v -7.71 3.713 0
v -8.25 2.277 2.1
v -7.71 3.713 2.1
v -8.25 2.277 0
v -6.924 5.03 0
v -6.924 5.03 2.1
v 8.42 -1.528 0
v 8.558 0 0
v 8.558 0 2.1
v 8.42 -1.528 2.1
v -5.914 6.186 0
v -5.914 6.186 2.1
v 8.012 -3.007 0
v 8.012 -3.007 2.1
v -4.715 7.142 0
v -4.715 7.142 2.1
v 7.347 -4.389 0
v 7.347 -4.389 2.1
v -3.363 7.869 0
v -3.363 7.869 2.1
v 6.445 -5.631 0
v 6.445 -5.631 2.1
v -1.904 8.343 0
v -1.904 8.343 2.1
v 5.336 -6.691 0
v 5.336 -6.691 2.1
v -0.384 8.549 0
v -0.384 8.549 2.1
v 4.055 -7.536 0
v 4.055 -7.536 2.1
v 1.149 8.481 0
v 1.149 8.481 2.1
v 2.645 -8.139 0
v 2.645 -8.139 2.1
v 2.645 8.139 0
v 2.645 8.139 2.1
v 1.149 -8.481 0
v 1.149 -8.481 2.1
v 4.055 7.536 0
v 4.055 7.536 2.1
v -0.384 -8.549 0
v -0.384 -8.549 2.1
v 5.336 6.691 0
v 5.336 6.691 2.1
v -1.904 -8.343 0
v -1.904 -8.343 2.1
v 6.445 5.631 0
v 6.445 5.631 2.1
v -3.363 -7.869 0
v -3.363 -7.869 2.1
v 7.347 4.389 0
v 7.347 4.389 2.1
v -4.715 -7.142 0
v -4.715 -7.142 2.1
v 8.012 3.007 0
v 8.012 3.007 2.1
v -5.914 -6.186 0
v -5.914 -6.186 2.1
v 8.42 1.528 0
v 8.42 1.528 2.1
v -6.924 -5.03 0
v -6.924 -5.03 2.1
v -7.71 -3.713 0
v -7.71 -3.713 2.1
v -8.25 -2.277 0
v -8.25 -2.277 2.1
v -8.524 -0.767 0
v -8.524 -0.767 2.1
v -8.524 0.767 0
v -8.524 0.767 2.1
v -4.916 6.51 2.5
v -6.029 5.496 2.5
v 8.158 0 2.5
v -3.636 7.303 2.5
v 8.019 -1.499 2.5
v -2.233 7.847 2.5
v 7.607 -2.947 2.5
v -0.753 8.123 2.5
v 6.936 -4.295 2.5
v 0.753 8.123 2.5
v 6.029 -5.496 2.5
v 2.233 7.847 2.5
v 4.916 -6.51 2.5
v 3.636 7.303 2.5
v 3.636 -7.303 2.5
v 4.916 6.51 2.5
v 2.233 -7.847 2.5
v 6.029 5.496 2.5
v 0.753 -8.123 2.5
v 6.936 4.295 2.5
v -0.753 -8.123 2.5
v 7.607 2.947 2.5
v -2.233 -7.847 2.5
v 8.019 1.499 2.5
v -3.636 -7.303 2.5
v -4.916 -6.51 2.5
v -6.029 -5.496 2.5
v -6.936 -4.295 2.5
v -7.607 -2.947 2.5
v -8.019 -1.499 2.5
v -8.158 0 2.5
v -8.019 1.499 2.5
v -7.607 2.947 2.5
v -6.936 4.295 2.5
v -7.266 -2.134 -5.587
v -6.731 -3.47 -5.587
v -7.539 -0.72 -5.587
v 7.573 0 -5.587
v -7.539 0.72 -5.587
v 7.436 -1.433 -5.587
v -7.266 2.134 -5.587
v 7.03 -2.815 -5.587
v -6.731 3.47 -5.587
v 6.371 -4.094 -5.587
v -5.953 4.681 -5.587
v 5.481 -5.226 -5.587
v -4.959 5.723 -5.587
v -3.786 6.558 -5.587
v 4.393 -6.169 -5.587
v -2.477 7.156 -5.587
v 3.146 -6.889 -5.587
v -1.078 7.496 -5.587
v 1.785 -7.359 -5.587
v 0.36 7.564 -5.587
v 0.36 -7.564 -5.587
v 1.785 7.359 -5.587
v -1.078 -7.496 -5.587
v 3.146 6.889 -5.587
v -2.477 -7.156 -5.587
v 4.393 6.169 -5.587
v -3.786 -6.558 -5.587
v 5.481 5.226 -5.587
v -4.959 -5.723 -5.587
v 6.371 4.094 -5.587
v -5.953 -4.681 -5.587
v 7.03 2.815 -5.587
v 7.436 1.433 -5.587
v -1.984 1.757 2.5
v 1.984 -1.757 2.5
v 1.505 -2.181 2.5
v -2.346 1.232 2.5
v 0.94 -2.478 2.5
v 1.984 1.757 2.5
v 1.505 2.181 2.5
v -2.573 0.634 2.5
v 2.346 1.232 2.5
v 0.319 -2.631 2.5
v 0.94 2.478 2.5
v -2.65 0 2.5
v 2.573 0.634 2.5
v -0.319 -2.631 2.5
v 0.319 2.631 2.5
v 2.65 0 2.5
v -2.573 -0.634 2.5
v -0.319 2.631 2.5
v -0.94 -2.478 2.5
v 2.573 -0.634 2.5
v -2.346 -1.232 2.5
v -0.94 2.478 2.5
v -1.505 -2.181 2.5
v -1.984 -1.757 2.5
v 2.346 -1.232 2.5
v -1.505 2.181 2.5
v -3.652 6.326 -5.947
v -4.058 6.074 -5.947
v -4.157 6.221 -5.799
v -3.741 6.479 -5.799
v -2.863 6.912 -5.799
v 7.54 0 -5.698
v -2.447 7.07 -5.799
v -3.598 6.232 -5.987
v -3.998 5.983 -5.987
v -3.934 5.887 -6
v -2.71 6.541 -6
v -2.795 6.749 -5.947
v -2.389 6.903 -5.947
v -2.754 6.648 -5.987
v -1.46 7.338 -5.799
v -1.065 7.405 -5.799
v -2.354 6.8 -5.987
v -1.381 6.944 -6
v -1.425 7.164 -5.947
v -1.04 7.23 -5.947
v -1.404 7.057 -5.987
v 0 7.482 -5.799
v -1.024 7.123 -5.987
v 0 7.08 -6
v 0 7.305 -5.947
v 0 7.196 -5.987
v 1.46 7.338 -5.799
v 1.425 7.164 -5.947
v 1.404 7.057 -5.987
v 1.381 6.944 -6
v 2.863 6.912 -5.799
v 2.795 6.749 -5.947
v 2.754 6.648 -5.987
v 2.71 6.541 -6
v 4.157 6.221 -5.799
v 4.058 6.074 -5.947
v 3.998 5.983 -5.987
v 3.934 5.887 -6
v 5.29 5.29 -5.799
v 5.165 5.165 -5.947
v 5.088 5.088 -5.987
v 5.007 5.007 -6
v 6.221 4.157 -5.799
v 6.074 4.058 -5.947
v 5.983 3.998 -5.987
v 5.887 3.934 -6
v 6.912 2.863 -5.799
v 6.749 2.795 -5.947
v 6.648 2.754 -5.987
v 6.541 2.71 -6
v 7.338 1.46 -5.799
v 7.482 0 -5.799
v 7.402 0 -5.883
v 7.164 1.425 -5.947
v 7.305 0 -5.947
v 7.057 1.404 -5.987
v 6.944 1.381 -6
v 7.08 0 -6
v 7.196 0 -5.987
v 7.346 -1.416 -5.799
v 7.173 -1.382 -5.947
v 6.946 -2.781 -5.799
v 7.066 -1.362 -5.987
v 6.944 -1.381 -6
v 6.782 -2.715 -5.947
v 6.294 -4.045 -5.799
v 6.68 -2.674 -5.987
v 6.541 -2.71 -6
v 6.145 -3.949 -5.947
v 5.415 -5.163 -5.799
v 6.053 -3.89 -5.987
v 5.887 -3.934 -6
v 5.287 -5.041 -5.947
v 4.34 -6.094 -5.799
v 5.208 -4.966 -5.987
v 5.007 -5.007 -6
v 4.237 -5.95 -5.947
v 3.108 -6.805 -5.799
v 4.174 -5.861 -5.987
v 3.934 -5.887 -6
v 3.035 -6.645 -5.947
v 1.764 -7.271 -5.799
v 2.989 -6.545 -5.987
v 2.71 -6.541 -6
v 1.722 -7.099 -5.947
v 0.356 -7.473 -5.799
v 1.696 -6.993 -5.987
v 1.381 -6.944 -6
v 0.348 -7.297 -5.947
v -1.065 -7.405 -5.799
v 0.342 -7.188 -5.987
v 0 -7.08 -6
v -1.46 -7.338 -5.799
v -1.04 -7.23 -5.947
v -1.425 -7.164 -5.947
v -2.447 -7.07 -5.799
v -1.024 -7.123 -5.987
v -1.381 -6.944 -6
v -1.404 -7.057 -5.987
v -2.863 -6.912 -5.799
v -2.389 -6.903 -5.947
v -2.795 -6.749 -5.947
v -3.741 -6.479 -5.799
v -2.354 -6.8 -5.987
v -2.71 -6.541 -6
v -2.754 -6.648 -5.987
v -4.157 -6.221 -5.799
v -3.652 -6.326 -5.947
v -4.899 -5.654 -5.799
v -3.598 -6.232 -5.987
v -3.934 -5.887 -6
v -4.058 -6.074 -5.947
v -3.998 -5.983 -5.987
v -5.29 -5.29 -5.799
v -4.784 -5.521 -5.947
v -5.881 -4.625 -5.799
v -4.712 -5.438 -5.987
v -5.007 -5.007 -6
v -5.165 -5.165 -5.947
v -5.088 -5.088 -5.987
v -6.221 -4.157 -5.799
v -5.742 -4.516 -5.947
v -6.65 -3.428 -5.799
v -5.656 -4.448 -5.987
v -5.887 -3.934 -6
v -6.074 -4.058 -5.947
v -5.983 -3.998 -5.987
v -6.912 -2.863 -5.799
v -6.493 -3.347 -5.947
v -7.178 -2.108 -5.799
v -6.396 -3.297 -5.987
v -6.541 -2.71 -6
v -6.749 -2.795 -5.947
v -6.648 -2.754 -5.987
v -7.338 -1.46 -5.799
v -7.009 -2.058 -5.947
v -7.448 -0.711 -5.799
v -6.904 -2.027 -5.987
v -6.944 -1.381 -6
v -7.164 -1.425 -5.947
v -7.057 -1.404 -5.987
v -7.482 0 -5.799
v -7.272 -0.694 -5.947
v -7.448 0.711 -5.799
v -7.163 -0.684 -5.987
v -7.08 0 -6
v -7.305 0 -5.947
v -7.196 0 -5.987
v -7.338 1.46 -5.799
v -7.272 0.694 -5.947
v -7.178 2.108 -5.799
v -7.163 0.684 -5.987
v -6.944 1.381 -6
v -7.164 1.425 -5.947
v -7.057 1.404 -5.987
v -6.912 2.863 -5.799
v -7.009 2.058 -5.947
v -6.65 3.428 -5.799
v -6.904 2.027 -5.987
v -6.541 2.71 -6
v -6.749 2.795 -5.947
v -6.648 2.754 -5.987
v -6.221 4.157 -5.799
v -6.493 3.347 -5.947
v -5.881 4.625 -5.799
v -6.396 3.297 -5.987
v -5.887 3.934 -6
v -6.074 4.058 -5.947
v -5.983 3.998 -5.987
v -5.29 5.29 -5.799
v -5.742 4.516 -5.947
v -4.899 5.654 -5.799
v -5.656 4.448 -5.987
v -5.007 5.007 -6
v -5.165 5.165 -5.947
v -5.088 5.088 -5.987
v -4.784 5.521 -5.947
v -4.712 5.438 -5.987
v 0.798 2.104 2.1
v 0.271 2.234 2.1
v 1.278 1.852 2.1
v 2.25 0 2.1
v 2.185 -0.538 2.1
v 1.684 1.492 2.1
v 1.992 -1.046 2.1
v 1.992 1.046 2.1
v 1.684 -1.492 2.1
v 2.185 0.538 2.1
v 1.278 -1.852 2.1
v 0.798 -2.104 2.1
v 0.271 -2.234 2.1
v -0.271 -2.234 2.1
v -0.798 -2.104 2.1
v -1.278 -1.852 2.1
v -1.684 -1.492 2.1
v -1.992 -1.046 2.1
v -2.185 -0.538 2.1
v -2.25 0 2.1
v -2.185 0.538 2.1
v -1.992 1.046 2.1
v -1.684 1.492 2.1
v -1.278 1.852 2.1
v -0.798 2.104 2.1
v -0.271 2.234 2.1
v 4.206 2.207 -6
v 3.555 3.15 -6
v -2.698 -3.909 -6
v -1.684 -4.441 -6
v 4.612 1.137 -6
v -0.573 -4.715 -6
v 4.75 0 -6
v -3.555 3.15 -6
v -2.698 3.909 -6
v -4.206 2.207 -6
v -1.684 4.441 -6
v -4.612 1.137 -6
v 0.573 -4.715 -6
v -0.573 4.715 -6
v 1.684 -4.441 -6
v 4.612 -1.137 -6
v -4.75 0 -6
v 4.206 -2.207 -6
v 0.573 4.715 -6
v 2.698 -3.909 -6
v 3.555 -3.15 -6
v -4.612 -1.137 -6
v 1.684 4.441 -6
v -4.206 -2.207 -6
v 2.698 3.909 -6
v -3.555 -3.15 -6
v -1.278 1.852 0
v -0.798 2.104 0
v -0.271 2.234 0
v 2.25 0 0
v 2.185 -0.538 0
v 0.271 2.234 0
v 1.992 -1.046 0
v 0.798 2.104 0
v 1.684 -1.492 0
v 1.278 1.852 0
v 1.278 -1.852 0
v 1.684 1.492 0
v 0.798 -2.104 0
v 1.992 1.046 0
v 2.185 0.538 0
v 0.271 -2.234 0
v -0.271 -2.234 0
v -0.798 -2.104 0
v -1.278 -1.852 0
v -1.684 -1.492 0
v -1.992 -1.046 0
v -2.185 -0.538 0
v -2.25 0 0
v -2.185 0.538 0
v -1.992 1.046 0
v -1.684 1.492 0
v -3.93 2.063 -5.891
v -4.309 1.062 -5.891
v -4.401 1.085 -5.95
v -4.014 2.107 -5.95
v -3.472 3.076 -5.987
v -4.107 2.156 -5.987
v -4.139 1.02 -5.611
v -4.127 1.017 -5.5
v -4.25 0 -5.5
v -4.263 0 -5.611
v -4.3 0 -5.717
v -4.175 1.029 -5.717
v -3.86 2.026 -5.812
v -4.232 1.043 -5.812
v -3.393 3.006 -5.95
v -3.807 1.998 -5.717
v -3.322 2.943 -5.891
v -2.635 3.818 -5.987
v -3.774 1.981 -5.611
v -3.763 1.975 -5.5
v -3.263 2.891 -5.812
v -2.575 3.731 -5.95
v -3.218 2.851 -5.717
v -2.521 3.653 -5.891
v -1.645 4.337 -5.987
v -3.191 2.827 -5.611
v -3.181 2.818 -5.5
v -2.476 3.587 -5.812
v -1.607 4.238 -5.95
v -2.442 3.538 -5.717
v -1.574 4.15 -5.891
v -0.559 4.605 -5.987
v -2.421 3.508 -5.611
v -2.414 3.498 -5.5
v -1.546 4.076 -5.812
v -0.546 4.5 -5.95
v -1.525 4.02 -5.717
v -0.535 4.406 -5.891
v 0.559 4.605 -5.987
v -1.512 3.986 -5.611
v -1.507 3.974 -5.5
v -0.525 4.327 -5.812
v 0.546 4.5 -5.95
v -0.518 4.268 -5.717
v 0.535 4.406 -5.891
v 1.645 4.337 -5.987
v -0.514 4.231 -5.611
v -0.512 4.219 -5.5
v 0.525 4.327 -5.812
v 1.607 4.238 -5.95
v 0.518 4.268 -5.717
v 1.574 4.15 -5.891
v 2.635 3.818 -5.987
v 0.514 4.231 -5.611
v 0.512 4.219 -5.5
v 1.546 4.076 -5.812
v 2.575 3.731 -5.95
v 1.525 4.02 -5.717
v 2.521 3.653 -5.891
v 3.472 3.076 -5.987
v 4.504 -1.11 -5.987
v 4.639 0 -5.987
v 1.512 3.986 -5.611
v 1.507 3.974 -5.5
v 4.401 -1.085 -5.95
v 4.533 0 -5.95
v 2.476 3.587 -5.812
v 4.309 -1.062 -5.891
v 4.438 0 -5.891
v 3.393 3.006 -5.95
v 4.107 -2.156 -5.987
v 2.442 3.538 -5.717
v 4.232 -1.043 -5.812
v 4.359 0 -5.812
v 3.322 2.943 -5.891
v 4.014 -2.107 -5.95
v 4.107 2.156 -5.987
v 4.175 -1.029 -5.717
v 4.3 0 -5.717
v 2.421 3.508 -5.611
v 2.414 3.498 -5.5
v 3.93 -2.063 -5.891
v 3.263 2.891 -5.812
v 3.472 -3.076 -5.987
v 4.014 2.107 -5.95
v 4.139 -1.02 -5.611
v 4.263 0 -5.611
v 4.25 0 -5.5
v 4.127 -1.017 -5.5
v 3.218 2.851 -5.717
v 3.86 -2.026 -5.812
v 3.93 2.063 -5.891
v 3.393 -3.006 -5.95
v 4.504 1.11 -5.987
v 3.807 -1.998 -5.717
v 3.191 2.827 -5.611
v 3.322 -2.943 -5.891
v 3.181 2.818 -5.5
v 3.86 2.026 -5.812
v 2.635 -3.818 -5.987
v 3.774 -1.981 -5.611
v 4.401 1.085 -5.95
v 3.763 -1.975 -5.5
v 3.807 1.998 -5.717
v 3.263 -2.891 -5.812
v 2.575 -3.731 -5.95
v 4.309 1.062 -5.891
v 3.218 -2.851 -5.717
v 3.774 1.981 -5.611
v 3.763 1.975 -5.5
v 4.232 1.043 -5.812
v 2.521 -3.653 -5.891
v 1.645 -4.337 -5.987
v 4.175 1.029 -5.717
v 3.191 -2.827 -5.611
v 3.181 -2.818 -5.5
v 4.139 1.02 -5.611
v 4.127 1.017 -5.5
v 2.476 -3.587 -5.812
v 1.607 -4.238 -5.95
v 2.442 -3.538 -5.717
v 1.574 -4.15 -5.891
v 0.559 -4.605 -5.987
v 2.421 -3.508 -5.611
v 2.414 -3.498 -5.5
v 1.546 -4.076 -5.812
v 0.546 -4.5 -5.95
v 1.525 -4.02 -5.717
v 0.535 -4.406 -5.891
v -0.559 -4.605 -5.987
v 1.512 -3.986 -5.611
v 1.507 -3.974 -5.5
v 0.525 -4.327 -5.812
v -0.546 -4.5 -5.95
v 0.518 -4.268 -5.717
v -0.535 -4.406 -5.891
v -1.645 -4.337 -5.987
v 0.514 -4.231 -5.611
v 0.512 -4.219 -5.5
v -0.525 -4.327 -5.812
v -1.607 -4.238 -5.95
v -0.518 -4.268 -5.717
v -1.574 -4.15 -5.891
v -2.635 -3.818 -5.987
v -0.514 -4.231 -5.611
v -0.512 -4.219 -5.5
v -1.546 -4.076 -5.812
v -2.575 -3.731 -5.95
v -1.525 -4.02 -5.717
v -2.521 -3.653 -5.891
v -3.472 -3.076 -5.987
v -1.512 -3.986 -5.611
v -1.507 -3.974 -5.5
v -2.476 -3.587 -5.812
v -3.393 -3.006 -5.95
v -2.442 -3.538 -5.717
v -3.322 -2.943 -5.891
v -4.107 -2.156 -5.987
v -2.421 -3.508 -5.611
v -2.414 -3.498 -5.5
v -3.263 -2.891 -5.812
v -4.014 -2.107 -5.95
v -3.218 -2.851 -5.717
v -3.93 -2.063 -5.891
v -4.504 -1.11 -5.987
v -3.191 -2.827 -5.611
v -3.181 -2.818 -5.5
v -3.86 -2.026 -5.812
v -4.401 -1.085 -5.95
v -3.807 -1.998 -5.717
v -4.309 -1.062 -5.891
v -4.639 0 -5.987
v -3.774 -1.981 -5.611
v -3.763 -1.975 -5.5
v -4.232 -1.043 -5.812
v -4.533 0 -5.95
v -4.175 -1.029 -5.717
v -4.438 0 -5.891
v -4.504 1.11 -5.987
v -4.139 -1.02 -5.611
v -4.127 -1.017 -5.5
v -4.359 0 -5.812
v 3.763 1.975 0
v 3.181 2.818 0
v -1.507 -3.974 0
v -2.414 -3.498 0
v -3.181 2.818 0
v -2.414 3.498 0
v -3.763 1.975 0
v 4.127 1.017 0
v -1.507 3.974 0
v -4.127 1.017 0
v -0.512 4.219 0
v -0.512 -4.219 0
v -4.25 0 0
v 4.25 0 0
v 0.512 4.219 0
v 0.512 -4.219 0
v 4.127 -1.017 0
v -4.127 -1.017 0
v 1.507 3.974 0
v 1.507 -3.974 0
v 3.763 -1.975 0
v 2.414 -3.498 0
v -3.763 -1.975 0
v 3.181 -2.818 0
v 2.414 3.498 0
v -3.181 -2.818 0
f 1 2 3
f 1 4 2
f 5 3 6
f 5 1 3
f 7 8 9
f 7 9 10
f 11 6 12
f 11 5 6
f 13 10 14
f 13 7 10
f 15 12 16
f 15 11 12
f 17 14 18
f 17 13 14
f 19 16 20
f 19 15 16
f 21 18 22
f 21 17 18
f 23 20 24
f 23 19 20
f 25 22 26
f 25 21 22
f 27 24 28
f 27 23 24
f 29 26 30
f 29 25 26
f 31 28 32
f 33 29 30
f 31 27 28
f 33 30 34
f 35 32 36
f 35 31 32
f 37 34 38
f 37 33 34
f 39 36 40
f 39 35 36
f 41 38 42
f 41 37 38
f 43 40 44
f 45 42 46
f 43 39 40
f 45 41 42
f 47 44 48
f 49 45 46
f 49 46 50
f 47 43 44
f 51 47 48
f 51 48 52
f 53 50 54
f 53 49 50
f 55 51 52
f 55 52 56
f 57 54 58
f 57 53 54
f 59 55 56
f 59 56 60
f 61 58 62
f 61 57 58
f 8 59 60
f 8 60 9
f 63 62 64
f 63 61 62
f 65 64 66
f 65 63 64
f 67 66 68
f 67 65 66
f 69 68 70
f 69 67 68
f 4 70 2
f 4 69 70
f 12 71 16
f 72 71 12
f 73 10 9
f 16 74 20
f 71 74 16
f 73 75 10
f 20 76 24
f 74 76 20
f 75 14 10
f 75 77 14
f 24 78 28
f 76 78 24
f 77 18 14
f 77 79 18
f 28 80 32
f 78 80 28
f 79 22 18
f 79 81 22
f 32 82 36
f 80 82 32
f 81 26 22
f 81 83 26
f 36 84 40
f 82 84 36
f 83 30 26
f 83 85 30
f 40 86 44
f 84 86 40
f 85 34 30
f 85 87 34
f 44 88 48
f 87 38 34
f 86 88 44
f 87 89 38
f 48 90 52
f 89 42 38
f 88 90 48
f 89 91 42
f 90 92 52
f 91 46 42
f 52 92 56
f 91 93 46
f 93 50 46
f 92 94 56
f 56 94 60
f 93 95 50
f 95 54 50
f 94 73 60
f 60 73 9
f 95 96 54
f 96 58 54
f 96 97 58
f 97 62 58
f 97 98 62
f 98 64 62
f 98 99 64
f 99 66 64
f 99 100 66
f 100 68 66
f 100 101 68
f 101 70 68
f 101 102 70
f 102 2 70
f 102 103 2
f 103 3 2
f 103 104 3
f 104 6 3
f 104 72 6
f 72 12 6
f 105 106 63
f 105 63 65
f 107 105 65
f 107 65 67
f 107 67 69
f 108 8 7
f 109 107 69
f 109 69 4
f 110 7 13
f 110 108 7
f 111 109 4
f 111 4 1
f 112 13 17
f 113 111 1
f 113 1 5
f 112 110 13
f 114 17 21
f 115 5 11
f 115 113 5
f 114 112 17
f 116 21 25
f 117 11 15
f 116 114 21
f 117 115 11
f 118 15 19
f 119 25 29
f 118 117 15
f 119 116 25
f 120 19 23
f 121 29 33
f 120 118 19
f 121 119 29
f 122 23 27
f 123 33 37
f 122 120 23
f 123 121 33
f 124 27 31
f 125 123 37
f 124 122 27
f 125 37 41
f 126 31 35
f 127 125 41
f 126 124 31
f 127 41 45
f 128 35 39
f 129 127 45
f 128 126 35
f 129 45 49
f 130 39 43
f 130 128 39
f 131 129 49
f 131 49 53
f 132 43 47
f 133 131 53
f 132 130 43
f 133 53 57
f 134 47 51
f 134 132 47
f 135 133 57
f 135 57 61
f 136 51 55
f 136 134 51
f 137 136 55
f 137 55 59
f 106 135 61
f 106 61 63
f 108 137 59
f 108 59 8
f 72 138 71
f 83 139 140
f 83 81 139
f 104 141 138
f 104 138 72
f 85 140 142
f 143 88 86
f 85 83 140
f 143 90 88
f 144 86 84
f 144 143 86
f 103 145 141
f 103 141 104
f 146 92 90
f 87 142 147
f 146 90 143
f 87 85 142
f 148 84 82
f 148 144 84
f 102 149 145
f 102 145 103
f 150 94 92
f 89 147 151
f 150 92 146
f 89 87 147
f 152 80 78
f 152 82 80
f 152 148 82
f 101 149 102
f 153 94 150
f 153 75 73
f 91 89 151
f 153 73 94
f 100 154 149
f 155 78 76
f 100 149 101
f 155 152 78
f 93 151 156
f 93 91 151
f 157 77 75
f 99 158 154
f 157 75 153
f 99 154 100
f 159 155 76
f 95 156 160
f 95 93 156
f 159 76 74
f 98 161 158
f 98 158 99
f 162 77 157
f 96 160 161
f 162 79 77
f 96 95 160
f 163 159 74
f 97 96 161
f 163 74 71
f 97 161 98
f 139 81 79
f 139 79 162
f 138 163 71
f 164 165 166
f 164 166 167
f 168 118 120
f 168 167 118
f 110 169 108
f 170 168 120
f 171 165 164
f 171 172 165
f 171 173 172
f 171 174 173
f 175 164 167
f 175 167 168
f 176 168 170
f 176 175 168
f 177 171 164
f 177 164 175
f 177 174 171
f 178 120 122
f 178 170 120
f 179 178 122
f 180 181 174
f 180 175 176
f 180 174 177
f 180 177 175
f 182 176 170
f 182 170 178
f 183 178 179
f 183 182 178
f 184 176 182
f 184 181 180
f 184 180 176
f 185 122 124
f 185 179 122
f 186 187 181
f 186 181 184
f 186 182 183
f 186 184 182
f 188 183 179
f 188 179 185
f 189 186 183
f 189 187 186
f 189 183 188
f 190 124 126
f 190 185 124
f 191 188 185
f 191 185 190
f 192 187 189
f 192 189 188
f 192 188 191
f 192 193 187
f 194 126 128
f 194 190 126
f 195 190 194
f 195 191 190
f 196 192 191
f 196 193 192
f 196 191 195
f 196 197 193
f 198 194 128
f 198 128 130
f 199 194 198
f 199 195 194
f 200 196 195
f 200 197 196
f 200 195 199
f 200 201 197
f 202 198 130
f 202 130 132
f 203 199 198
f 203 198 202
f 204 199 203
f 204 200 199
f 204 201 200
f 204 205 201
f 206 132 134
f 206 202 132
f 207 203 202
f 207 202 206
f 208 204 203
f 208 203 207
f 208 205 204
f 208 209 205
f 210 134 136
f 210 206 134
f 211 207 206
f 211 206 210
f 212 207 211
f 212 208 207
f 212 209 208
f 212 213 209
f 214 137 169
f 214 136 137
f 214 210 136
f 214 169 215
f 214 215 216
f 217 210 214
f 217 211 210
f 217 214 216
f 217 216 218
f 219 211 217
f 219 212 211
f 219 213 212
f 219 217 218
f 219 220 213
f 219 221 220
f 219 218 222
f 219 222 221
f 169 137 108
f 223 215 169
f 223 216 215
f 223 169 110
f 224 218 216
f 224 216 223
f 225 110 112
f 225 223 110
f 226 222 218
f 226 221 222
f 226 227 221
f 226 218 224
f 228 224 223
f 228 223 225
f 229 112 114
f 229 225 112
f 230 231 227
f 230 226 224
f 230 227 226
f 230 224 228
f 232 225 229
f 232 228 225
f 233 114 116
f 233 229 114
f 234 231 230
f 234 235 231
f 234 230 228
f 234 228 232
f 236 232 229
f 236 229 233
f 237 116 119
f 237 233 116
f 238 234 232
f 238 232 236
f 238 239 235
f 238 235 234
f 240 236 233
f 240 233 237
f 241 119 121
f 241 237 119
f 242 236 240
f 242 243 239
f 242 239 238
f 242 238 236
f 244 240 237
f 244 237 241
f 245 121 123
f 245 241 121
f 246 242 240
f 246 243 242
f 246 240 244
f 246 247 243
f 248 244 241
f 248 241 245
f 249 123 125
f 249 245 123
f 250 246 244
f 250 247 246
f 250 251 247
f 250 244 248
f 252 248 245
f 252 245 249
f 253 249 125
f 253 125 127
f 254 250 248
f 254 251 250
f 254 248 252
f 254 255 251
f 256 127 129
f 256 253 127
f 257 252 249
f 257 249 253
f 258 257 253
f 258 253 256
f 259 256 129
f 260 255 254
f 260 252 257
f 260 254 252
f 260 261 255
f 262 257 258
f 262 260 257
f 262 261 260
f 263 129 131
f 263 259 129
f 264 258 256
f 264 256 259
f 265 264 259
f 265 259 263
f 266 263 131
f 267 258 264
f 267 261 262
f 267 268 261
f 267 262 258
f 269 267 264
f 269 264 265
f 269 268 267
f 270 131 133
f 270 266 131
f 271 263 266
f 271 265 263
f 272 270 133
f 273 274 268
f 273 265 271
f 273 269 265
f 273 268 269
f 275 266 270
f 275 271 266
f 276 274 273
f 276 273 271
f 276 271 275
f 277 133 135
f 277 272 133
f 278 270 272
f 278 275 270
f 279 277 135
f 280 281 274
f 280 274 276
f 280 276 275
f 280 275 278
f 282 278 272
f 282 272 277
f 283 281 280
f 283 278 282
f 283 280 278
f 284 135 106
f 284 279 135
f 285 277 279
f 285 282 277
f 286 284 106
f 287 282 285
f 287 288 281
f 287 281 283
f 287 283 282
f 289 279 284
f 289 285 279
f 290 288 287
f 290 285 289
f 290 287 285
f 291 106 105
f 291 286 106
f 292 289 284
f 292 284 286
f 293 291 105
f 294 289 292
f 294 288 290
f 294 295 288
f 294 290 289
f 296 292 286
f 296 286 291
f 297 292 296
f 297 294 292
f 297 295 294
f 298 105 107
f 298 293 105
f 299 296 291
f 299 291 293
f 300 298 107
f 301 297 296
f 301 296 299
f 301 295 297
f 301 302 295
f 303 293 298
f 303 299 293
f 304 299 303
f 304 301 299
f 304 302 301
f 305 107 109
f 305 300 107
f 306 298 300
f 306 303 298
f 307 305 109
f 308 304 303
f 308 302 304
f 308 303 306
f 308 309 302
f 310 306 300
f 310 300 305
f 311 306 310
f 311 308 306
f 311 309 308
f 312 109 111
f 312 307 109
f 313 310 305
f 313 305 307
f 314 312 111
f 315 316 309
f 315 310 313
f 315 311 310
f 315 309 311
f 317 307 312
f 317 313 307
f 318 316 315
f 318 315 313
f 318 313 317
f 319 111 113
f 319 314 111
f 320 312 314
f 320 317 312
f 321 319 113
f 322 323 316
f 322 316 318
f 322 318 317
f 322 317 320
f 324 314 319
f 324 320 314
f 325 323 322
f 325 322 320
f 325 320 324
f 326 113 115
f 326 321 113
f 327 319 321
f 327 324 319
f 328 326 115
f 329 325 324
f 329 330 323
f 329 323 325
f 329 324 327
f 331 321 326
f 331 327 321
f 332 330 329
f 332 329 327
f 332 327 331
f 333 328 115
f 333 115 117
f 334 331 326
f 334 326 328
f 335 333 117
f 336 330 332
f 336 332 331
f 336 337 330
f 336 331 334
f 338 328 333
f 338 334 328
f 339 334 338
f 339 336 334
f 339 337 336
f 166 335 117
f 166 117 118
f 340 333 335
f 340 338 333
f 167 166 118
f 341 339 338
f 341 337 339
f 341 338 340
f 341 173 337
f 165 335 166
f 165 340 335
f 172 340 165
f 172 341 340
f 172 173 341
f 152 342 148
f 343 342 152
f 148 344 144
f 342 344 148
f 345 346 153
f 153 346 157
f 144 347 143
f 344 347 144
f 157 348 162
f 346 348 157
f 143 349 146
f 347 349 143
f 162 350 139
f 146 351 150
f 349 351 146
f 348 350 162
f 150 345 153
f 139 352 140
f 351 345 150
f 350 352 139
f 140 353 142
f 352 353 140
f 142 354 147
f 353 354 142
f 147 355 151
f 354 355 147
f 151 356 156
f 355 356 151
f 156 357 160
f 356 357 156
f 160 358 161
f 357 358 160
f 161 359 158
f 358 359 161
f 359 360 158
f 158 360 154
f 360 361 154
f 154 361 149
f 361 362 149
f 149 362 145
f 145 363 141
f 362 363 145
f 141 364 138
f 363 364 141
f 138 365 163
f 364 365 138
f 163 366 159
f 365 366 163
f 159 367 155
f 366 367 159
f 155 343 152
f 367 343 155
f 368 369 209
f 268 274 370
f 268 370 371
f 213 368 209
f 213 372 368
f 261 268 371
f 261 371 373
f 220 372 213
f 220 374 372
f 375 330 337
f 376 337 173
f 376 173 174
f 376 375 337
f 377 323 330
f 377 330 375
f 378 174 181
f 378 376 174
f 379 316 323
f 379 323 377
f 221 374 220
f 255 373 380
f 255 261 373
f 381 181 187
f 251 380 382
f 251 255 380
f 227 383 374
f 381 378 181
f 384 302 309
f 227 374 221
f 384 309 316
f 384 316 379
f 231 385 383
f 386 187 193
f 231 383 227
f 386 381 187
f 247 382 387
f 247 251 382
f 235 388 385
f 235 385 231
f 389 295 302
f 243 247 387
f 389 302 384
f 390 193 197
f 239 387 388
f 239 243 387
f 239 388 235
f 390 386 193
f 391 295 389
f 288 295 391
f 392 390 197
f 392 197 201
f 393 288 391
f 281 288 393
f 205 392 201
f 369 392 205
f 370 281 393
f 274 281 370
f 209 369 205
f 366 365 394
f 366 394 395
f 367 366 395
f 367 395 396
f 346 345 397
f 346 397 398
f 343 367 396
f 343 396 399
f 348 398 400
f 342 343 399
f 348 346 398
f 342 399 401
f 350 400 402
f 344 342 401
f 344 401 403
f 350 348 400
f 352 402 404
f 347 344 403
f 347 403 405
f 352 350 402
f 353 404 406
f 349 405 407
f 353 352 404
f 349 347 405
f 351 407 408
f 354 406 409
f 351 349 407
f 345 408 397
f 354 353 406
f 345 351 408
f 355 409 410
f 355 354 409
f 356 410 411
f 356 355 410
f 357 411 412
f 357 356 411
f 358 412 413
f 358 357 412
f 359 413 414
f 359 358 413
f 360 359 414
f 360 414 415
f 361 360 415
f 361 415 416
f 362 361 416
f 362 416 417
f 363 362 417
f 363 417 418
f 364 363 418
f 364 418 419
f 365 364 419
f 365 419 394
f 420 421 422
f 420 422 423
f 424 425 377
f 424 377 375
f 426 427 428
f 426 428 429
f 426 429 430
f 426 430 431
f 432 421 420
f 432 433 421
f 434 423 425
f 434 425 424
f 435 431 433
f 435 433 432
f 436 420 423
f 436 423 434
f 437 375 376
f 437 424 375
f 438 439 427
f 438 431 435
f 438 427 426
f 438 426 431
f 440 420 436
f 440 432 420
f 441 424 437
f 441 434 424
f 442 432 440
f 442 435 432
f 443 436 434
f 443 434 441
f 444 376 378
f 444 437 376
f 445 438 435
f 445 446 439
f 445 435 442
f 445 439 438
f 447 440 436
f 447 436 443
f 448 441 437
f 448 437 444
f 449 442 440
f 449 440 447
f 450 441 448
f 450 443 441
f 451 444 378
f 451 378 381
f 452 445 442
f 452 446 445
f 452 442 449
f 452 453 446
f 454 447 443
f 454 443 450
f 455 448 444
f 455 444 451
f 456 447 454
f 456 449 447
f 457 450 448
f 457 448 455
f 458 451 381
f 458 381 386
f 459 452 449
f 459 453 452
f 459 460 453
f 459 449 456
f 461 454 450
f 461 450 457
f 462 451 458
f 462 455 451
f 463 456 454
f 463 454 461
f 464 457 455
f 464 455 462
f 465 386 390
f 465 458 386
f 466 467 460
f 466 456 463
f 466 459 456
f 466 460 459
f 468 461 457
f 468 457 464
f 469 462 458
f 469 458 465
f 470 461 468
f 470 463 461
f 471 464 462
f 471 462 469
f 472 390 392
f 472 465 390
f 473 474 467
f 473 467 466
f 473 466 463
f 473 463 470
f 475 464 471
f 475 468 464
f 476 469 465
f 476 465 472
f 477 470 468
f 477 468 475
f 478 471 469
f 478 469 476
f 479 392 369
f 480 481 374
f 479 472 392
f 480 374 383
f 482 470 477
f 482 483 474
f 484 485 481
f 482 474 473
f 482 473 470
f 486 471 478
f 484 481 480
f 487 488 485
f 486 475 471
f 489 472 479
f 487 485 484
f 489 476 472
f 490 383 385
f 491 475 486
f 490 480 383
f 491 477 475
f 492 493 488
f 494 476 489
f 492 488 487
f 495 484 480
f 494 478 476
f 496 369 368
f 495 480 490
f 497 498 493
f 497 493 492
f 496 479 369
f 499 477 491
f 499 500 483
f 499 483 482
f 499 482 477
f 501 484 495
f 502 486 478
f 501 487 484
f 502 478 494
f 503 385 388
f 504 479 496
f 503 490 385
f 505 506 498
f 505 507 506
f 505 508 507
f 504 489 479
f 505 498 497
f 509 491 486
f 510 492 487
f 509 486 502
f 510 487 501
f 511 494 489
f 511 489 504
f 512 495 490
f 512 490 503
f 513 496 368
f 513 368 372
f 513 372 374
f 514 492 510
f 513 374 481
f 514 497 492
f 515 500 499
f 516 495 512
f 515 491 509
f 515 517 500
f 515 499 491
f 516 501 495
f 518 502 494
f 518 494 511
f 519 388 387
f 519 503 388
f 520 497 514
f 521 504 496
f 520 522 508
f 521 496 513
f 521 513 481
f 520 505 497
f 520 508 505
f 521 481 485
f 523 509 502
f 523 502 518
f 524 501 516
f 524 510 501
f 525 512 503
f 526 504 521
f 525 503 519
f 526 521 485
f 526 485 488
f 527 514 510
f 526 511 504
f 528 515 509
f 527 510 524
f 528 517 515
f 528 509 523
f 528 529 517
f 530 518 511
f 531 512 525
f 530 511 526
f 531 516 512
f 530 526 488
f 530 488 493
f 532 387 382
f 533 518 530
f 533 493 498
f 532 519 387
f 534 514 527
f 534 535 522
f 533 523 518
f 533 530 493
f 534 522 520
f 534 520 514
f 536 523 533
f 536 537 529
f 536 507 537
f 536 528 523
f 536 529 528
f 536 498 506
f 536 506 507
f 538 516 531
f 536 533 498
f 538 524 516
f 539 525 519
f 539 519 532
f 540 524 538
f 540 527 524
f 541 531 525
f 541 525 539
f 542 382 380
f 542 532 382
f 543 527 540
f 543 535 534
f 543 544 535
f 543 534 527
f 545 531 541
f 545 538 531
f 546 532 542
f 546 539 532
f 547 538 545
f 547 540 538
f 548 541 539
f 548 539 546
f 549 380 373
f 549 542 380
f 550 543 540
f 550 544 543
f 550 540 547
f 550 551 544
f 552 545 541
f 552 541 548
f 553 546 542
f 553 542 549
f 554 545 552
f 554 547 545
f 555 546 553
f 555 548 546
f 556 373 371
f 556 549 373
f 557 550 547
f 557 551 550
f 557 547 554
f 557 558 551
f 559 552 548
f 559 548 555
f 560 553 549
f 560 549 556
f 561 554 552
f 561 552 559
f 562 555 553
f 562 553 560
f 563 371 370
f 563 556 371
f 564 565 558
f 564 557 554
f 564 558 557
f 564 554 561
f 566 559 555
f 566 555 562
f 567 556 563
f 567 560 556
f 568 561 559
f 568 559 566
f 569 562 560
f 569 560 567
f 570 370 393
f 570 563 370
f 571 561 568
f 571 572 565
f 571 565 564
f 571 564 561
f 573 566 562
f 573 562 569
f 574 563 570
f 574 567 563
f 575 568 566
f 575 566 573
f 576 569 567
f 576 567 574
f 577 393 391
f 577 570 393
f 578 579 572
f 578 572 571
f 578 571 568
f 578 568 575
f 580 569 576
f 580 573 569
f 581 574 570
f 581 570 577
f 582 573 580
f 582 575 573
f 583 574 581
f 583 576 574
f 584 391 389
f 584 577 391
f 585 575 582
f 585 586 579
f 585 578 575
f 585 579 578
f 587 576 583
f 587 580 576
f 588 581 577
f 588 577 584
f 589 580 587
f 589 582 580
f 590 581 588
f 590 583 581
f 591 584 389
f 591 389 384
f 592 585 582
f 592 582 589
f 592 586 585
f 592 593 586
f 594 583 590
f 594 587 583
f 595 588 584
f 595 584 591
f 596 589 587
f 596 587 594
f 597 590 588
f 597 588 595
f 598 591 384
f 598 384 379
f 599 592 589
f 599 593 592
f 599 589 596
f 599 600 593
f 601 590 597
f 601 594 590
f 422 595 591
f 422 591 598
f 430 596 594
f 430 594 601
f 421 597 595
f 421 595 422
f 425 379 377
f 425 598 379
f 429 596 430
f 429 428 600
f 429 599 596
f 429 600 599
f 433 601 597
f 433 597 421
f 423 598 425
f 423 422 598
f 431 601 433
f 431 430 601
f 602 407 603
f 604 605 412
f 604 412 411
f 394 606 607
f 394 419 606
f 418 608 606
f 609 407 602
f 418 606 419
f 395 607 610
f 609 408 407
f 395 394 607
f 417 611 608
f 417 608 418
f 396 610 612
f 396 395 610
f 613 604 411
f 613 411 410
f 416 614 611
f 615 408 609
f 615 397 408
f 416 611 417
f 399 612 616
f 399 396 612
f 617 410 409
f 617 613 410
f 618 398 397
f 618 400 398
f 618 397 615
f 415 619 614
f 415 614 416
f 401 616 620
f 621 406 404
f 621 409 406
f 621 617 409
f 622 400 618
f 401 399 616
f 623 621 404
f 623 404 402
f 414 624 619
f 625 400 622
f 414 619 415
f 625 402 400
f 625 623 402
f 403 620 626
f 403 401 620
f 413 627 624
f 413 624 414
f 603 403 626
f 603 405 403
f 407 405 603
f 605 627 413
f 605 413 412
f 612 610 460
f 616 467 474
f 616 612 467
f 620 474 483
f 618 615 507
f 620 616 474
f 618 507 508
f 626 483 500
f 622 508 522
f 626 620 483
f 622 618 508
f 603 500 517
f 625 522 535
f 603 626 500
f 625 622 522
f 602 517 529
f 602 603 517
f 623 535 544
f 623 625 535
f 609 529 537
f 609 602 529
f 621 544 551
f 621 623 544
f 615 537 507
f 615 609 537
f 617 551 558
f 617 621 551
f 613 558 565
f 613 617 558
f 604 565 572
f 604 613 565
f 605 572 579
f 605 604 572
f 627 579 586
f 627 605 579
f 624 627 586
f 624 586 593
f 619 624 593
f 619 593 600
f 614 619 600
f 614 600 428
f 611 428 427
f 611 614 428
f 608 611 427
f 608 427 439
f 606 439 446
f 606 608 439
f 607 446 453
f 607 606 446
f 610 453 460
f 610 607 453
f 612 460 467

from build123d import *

# Parameters (mm, degrees)
FILLET_R     = 0.5
CHAMFER_SIZE = 0.4


with BuildPart() as part:
    # Sketch → Revolution (revolve)
    with BuildSketch(Plane.XZ):
        Polygon((2.25, 0), (2.25, 2.5), (8.557962, 2.5), (8.557962, 0), (7.5, -6), (4.25, -6), (4.25, 0), align=None)
    revolve(axis=Axis((0, 0, 0), (0, 0, 1)))

    # Fillet
    fillet_edges = [part.edges().sort_by_distance(p)[0] for p in [
        (-7.5, 0, -6),
        (-4.25, 0, -6),
    ]]
    fillet(fillet_edges, radius=FILLET_R)

    # Chamfer
    chamfer_edges = [part.edges().sort_by_distance(p)[0] for p in [
        (-2.25, 0, 2.5),
        (-8.557962, 0, 2.5),
    ]]
    chamfer(chamfer_edges, length=CHAMFER_SIZE)


solid = part.part
